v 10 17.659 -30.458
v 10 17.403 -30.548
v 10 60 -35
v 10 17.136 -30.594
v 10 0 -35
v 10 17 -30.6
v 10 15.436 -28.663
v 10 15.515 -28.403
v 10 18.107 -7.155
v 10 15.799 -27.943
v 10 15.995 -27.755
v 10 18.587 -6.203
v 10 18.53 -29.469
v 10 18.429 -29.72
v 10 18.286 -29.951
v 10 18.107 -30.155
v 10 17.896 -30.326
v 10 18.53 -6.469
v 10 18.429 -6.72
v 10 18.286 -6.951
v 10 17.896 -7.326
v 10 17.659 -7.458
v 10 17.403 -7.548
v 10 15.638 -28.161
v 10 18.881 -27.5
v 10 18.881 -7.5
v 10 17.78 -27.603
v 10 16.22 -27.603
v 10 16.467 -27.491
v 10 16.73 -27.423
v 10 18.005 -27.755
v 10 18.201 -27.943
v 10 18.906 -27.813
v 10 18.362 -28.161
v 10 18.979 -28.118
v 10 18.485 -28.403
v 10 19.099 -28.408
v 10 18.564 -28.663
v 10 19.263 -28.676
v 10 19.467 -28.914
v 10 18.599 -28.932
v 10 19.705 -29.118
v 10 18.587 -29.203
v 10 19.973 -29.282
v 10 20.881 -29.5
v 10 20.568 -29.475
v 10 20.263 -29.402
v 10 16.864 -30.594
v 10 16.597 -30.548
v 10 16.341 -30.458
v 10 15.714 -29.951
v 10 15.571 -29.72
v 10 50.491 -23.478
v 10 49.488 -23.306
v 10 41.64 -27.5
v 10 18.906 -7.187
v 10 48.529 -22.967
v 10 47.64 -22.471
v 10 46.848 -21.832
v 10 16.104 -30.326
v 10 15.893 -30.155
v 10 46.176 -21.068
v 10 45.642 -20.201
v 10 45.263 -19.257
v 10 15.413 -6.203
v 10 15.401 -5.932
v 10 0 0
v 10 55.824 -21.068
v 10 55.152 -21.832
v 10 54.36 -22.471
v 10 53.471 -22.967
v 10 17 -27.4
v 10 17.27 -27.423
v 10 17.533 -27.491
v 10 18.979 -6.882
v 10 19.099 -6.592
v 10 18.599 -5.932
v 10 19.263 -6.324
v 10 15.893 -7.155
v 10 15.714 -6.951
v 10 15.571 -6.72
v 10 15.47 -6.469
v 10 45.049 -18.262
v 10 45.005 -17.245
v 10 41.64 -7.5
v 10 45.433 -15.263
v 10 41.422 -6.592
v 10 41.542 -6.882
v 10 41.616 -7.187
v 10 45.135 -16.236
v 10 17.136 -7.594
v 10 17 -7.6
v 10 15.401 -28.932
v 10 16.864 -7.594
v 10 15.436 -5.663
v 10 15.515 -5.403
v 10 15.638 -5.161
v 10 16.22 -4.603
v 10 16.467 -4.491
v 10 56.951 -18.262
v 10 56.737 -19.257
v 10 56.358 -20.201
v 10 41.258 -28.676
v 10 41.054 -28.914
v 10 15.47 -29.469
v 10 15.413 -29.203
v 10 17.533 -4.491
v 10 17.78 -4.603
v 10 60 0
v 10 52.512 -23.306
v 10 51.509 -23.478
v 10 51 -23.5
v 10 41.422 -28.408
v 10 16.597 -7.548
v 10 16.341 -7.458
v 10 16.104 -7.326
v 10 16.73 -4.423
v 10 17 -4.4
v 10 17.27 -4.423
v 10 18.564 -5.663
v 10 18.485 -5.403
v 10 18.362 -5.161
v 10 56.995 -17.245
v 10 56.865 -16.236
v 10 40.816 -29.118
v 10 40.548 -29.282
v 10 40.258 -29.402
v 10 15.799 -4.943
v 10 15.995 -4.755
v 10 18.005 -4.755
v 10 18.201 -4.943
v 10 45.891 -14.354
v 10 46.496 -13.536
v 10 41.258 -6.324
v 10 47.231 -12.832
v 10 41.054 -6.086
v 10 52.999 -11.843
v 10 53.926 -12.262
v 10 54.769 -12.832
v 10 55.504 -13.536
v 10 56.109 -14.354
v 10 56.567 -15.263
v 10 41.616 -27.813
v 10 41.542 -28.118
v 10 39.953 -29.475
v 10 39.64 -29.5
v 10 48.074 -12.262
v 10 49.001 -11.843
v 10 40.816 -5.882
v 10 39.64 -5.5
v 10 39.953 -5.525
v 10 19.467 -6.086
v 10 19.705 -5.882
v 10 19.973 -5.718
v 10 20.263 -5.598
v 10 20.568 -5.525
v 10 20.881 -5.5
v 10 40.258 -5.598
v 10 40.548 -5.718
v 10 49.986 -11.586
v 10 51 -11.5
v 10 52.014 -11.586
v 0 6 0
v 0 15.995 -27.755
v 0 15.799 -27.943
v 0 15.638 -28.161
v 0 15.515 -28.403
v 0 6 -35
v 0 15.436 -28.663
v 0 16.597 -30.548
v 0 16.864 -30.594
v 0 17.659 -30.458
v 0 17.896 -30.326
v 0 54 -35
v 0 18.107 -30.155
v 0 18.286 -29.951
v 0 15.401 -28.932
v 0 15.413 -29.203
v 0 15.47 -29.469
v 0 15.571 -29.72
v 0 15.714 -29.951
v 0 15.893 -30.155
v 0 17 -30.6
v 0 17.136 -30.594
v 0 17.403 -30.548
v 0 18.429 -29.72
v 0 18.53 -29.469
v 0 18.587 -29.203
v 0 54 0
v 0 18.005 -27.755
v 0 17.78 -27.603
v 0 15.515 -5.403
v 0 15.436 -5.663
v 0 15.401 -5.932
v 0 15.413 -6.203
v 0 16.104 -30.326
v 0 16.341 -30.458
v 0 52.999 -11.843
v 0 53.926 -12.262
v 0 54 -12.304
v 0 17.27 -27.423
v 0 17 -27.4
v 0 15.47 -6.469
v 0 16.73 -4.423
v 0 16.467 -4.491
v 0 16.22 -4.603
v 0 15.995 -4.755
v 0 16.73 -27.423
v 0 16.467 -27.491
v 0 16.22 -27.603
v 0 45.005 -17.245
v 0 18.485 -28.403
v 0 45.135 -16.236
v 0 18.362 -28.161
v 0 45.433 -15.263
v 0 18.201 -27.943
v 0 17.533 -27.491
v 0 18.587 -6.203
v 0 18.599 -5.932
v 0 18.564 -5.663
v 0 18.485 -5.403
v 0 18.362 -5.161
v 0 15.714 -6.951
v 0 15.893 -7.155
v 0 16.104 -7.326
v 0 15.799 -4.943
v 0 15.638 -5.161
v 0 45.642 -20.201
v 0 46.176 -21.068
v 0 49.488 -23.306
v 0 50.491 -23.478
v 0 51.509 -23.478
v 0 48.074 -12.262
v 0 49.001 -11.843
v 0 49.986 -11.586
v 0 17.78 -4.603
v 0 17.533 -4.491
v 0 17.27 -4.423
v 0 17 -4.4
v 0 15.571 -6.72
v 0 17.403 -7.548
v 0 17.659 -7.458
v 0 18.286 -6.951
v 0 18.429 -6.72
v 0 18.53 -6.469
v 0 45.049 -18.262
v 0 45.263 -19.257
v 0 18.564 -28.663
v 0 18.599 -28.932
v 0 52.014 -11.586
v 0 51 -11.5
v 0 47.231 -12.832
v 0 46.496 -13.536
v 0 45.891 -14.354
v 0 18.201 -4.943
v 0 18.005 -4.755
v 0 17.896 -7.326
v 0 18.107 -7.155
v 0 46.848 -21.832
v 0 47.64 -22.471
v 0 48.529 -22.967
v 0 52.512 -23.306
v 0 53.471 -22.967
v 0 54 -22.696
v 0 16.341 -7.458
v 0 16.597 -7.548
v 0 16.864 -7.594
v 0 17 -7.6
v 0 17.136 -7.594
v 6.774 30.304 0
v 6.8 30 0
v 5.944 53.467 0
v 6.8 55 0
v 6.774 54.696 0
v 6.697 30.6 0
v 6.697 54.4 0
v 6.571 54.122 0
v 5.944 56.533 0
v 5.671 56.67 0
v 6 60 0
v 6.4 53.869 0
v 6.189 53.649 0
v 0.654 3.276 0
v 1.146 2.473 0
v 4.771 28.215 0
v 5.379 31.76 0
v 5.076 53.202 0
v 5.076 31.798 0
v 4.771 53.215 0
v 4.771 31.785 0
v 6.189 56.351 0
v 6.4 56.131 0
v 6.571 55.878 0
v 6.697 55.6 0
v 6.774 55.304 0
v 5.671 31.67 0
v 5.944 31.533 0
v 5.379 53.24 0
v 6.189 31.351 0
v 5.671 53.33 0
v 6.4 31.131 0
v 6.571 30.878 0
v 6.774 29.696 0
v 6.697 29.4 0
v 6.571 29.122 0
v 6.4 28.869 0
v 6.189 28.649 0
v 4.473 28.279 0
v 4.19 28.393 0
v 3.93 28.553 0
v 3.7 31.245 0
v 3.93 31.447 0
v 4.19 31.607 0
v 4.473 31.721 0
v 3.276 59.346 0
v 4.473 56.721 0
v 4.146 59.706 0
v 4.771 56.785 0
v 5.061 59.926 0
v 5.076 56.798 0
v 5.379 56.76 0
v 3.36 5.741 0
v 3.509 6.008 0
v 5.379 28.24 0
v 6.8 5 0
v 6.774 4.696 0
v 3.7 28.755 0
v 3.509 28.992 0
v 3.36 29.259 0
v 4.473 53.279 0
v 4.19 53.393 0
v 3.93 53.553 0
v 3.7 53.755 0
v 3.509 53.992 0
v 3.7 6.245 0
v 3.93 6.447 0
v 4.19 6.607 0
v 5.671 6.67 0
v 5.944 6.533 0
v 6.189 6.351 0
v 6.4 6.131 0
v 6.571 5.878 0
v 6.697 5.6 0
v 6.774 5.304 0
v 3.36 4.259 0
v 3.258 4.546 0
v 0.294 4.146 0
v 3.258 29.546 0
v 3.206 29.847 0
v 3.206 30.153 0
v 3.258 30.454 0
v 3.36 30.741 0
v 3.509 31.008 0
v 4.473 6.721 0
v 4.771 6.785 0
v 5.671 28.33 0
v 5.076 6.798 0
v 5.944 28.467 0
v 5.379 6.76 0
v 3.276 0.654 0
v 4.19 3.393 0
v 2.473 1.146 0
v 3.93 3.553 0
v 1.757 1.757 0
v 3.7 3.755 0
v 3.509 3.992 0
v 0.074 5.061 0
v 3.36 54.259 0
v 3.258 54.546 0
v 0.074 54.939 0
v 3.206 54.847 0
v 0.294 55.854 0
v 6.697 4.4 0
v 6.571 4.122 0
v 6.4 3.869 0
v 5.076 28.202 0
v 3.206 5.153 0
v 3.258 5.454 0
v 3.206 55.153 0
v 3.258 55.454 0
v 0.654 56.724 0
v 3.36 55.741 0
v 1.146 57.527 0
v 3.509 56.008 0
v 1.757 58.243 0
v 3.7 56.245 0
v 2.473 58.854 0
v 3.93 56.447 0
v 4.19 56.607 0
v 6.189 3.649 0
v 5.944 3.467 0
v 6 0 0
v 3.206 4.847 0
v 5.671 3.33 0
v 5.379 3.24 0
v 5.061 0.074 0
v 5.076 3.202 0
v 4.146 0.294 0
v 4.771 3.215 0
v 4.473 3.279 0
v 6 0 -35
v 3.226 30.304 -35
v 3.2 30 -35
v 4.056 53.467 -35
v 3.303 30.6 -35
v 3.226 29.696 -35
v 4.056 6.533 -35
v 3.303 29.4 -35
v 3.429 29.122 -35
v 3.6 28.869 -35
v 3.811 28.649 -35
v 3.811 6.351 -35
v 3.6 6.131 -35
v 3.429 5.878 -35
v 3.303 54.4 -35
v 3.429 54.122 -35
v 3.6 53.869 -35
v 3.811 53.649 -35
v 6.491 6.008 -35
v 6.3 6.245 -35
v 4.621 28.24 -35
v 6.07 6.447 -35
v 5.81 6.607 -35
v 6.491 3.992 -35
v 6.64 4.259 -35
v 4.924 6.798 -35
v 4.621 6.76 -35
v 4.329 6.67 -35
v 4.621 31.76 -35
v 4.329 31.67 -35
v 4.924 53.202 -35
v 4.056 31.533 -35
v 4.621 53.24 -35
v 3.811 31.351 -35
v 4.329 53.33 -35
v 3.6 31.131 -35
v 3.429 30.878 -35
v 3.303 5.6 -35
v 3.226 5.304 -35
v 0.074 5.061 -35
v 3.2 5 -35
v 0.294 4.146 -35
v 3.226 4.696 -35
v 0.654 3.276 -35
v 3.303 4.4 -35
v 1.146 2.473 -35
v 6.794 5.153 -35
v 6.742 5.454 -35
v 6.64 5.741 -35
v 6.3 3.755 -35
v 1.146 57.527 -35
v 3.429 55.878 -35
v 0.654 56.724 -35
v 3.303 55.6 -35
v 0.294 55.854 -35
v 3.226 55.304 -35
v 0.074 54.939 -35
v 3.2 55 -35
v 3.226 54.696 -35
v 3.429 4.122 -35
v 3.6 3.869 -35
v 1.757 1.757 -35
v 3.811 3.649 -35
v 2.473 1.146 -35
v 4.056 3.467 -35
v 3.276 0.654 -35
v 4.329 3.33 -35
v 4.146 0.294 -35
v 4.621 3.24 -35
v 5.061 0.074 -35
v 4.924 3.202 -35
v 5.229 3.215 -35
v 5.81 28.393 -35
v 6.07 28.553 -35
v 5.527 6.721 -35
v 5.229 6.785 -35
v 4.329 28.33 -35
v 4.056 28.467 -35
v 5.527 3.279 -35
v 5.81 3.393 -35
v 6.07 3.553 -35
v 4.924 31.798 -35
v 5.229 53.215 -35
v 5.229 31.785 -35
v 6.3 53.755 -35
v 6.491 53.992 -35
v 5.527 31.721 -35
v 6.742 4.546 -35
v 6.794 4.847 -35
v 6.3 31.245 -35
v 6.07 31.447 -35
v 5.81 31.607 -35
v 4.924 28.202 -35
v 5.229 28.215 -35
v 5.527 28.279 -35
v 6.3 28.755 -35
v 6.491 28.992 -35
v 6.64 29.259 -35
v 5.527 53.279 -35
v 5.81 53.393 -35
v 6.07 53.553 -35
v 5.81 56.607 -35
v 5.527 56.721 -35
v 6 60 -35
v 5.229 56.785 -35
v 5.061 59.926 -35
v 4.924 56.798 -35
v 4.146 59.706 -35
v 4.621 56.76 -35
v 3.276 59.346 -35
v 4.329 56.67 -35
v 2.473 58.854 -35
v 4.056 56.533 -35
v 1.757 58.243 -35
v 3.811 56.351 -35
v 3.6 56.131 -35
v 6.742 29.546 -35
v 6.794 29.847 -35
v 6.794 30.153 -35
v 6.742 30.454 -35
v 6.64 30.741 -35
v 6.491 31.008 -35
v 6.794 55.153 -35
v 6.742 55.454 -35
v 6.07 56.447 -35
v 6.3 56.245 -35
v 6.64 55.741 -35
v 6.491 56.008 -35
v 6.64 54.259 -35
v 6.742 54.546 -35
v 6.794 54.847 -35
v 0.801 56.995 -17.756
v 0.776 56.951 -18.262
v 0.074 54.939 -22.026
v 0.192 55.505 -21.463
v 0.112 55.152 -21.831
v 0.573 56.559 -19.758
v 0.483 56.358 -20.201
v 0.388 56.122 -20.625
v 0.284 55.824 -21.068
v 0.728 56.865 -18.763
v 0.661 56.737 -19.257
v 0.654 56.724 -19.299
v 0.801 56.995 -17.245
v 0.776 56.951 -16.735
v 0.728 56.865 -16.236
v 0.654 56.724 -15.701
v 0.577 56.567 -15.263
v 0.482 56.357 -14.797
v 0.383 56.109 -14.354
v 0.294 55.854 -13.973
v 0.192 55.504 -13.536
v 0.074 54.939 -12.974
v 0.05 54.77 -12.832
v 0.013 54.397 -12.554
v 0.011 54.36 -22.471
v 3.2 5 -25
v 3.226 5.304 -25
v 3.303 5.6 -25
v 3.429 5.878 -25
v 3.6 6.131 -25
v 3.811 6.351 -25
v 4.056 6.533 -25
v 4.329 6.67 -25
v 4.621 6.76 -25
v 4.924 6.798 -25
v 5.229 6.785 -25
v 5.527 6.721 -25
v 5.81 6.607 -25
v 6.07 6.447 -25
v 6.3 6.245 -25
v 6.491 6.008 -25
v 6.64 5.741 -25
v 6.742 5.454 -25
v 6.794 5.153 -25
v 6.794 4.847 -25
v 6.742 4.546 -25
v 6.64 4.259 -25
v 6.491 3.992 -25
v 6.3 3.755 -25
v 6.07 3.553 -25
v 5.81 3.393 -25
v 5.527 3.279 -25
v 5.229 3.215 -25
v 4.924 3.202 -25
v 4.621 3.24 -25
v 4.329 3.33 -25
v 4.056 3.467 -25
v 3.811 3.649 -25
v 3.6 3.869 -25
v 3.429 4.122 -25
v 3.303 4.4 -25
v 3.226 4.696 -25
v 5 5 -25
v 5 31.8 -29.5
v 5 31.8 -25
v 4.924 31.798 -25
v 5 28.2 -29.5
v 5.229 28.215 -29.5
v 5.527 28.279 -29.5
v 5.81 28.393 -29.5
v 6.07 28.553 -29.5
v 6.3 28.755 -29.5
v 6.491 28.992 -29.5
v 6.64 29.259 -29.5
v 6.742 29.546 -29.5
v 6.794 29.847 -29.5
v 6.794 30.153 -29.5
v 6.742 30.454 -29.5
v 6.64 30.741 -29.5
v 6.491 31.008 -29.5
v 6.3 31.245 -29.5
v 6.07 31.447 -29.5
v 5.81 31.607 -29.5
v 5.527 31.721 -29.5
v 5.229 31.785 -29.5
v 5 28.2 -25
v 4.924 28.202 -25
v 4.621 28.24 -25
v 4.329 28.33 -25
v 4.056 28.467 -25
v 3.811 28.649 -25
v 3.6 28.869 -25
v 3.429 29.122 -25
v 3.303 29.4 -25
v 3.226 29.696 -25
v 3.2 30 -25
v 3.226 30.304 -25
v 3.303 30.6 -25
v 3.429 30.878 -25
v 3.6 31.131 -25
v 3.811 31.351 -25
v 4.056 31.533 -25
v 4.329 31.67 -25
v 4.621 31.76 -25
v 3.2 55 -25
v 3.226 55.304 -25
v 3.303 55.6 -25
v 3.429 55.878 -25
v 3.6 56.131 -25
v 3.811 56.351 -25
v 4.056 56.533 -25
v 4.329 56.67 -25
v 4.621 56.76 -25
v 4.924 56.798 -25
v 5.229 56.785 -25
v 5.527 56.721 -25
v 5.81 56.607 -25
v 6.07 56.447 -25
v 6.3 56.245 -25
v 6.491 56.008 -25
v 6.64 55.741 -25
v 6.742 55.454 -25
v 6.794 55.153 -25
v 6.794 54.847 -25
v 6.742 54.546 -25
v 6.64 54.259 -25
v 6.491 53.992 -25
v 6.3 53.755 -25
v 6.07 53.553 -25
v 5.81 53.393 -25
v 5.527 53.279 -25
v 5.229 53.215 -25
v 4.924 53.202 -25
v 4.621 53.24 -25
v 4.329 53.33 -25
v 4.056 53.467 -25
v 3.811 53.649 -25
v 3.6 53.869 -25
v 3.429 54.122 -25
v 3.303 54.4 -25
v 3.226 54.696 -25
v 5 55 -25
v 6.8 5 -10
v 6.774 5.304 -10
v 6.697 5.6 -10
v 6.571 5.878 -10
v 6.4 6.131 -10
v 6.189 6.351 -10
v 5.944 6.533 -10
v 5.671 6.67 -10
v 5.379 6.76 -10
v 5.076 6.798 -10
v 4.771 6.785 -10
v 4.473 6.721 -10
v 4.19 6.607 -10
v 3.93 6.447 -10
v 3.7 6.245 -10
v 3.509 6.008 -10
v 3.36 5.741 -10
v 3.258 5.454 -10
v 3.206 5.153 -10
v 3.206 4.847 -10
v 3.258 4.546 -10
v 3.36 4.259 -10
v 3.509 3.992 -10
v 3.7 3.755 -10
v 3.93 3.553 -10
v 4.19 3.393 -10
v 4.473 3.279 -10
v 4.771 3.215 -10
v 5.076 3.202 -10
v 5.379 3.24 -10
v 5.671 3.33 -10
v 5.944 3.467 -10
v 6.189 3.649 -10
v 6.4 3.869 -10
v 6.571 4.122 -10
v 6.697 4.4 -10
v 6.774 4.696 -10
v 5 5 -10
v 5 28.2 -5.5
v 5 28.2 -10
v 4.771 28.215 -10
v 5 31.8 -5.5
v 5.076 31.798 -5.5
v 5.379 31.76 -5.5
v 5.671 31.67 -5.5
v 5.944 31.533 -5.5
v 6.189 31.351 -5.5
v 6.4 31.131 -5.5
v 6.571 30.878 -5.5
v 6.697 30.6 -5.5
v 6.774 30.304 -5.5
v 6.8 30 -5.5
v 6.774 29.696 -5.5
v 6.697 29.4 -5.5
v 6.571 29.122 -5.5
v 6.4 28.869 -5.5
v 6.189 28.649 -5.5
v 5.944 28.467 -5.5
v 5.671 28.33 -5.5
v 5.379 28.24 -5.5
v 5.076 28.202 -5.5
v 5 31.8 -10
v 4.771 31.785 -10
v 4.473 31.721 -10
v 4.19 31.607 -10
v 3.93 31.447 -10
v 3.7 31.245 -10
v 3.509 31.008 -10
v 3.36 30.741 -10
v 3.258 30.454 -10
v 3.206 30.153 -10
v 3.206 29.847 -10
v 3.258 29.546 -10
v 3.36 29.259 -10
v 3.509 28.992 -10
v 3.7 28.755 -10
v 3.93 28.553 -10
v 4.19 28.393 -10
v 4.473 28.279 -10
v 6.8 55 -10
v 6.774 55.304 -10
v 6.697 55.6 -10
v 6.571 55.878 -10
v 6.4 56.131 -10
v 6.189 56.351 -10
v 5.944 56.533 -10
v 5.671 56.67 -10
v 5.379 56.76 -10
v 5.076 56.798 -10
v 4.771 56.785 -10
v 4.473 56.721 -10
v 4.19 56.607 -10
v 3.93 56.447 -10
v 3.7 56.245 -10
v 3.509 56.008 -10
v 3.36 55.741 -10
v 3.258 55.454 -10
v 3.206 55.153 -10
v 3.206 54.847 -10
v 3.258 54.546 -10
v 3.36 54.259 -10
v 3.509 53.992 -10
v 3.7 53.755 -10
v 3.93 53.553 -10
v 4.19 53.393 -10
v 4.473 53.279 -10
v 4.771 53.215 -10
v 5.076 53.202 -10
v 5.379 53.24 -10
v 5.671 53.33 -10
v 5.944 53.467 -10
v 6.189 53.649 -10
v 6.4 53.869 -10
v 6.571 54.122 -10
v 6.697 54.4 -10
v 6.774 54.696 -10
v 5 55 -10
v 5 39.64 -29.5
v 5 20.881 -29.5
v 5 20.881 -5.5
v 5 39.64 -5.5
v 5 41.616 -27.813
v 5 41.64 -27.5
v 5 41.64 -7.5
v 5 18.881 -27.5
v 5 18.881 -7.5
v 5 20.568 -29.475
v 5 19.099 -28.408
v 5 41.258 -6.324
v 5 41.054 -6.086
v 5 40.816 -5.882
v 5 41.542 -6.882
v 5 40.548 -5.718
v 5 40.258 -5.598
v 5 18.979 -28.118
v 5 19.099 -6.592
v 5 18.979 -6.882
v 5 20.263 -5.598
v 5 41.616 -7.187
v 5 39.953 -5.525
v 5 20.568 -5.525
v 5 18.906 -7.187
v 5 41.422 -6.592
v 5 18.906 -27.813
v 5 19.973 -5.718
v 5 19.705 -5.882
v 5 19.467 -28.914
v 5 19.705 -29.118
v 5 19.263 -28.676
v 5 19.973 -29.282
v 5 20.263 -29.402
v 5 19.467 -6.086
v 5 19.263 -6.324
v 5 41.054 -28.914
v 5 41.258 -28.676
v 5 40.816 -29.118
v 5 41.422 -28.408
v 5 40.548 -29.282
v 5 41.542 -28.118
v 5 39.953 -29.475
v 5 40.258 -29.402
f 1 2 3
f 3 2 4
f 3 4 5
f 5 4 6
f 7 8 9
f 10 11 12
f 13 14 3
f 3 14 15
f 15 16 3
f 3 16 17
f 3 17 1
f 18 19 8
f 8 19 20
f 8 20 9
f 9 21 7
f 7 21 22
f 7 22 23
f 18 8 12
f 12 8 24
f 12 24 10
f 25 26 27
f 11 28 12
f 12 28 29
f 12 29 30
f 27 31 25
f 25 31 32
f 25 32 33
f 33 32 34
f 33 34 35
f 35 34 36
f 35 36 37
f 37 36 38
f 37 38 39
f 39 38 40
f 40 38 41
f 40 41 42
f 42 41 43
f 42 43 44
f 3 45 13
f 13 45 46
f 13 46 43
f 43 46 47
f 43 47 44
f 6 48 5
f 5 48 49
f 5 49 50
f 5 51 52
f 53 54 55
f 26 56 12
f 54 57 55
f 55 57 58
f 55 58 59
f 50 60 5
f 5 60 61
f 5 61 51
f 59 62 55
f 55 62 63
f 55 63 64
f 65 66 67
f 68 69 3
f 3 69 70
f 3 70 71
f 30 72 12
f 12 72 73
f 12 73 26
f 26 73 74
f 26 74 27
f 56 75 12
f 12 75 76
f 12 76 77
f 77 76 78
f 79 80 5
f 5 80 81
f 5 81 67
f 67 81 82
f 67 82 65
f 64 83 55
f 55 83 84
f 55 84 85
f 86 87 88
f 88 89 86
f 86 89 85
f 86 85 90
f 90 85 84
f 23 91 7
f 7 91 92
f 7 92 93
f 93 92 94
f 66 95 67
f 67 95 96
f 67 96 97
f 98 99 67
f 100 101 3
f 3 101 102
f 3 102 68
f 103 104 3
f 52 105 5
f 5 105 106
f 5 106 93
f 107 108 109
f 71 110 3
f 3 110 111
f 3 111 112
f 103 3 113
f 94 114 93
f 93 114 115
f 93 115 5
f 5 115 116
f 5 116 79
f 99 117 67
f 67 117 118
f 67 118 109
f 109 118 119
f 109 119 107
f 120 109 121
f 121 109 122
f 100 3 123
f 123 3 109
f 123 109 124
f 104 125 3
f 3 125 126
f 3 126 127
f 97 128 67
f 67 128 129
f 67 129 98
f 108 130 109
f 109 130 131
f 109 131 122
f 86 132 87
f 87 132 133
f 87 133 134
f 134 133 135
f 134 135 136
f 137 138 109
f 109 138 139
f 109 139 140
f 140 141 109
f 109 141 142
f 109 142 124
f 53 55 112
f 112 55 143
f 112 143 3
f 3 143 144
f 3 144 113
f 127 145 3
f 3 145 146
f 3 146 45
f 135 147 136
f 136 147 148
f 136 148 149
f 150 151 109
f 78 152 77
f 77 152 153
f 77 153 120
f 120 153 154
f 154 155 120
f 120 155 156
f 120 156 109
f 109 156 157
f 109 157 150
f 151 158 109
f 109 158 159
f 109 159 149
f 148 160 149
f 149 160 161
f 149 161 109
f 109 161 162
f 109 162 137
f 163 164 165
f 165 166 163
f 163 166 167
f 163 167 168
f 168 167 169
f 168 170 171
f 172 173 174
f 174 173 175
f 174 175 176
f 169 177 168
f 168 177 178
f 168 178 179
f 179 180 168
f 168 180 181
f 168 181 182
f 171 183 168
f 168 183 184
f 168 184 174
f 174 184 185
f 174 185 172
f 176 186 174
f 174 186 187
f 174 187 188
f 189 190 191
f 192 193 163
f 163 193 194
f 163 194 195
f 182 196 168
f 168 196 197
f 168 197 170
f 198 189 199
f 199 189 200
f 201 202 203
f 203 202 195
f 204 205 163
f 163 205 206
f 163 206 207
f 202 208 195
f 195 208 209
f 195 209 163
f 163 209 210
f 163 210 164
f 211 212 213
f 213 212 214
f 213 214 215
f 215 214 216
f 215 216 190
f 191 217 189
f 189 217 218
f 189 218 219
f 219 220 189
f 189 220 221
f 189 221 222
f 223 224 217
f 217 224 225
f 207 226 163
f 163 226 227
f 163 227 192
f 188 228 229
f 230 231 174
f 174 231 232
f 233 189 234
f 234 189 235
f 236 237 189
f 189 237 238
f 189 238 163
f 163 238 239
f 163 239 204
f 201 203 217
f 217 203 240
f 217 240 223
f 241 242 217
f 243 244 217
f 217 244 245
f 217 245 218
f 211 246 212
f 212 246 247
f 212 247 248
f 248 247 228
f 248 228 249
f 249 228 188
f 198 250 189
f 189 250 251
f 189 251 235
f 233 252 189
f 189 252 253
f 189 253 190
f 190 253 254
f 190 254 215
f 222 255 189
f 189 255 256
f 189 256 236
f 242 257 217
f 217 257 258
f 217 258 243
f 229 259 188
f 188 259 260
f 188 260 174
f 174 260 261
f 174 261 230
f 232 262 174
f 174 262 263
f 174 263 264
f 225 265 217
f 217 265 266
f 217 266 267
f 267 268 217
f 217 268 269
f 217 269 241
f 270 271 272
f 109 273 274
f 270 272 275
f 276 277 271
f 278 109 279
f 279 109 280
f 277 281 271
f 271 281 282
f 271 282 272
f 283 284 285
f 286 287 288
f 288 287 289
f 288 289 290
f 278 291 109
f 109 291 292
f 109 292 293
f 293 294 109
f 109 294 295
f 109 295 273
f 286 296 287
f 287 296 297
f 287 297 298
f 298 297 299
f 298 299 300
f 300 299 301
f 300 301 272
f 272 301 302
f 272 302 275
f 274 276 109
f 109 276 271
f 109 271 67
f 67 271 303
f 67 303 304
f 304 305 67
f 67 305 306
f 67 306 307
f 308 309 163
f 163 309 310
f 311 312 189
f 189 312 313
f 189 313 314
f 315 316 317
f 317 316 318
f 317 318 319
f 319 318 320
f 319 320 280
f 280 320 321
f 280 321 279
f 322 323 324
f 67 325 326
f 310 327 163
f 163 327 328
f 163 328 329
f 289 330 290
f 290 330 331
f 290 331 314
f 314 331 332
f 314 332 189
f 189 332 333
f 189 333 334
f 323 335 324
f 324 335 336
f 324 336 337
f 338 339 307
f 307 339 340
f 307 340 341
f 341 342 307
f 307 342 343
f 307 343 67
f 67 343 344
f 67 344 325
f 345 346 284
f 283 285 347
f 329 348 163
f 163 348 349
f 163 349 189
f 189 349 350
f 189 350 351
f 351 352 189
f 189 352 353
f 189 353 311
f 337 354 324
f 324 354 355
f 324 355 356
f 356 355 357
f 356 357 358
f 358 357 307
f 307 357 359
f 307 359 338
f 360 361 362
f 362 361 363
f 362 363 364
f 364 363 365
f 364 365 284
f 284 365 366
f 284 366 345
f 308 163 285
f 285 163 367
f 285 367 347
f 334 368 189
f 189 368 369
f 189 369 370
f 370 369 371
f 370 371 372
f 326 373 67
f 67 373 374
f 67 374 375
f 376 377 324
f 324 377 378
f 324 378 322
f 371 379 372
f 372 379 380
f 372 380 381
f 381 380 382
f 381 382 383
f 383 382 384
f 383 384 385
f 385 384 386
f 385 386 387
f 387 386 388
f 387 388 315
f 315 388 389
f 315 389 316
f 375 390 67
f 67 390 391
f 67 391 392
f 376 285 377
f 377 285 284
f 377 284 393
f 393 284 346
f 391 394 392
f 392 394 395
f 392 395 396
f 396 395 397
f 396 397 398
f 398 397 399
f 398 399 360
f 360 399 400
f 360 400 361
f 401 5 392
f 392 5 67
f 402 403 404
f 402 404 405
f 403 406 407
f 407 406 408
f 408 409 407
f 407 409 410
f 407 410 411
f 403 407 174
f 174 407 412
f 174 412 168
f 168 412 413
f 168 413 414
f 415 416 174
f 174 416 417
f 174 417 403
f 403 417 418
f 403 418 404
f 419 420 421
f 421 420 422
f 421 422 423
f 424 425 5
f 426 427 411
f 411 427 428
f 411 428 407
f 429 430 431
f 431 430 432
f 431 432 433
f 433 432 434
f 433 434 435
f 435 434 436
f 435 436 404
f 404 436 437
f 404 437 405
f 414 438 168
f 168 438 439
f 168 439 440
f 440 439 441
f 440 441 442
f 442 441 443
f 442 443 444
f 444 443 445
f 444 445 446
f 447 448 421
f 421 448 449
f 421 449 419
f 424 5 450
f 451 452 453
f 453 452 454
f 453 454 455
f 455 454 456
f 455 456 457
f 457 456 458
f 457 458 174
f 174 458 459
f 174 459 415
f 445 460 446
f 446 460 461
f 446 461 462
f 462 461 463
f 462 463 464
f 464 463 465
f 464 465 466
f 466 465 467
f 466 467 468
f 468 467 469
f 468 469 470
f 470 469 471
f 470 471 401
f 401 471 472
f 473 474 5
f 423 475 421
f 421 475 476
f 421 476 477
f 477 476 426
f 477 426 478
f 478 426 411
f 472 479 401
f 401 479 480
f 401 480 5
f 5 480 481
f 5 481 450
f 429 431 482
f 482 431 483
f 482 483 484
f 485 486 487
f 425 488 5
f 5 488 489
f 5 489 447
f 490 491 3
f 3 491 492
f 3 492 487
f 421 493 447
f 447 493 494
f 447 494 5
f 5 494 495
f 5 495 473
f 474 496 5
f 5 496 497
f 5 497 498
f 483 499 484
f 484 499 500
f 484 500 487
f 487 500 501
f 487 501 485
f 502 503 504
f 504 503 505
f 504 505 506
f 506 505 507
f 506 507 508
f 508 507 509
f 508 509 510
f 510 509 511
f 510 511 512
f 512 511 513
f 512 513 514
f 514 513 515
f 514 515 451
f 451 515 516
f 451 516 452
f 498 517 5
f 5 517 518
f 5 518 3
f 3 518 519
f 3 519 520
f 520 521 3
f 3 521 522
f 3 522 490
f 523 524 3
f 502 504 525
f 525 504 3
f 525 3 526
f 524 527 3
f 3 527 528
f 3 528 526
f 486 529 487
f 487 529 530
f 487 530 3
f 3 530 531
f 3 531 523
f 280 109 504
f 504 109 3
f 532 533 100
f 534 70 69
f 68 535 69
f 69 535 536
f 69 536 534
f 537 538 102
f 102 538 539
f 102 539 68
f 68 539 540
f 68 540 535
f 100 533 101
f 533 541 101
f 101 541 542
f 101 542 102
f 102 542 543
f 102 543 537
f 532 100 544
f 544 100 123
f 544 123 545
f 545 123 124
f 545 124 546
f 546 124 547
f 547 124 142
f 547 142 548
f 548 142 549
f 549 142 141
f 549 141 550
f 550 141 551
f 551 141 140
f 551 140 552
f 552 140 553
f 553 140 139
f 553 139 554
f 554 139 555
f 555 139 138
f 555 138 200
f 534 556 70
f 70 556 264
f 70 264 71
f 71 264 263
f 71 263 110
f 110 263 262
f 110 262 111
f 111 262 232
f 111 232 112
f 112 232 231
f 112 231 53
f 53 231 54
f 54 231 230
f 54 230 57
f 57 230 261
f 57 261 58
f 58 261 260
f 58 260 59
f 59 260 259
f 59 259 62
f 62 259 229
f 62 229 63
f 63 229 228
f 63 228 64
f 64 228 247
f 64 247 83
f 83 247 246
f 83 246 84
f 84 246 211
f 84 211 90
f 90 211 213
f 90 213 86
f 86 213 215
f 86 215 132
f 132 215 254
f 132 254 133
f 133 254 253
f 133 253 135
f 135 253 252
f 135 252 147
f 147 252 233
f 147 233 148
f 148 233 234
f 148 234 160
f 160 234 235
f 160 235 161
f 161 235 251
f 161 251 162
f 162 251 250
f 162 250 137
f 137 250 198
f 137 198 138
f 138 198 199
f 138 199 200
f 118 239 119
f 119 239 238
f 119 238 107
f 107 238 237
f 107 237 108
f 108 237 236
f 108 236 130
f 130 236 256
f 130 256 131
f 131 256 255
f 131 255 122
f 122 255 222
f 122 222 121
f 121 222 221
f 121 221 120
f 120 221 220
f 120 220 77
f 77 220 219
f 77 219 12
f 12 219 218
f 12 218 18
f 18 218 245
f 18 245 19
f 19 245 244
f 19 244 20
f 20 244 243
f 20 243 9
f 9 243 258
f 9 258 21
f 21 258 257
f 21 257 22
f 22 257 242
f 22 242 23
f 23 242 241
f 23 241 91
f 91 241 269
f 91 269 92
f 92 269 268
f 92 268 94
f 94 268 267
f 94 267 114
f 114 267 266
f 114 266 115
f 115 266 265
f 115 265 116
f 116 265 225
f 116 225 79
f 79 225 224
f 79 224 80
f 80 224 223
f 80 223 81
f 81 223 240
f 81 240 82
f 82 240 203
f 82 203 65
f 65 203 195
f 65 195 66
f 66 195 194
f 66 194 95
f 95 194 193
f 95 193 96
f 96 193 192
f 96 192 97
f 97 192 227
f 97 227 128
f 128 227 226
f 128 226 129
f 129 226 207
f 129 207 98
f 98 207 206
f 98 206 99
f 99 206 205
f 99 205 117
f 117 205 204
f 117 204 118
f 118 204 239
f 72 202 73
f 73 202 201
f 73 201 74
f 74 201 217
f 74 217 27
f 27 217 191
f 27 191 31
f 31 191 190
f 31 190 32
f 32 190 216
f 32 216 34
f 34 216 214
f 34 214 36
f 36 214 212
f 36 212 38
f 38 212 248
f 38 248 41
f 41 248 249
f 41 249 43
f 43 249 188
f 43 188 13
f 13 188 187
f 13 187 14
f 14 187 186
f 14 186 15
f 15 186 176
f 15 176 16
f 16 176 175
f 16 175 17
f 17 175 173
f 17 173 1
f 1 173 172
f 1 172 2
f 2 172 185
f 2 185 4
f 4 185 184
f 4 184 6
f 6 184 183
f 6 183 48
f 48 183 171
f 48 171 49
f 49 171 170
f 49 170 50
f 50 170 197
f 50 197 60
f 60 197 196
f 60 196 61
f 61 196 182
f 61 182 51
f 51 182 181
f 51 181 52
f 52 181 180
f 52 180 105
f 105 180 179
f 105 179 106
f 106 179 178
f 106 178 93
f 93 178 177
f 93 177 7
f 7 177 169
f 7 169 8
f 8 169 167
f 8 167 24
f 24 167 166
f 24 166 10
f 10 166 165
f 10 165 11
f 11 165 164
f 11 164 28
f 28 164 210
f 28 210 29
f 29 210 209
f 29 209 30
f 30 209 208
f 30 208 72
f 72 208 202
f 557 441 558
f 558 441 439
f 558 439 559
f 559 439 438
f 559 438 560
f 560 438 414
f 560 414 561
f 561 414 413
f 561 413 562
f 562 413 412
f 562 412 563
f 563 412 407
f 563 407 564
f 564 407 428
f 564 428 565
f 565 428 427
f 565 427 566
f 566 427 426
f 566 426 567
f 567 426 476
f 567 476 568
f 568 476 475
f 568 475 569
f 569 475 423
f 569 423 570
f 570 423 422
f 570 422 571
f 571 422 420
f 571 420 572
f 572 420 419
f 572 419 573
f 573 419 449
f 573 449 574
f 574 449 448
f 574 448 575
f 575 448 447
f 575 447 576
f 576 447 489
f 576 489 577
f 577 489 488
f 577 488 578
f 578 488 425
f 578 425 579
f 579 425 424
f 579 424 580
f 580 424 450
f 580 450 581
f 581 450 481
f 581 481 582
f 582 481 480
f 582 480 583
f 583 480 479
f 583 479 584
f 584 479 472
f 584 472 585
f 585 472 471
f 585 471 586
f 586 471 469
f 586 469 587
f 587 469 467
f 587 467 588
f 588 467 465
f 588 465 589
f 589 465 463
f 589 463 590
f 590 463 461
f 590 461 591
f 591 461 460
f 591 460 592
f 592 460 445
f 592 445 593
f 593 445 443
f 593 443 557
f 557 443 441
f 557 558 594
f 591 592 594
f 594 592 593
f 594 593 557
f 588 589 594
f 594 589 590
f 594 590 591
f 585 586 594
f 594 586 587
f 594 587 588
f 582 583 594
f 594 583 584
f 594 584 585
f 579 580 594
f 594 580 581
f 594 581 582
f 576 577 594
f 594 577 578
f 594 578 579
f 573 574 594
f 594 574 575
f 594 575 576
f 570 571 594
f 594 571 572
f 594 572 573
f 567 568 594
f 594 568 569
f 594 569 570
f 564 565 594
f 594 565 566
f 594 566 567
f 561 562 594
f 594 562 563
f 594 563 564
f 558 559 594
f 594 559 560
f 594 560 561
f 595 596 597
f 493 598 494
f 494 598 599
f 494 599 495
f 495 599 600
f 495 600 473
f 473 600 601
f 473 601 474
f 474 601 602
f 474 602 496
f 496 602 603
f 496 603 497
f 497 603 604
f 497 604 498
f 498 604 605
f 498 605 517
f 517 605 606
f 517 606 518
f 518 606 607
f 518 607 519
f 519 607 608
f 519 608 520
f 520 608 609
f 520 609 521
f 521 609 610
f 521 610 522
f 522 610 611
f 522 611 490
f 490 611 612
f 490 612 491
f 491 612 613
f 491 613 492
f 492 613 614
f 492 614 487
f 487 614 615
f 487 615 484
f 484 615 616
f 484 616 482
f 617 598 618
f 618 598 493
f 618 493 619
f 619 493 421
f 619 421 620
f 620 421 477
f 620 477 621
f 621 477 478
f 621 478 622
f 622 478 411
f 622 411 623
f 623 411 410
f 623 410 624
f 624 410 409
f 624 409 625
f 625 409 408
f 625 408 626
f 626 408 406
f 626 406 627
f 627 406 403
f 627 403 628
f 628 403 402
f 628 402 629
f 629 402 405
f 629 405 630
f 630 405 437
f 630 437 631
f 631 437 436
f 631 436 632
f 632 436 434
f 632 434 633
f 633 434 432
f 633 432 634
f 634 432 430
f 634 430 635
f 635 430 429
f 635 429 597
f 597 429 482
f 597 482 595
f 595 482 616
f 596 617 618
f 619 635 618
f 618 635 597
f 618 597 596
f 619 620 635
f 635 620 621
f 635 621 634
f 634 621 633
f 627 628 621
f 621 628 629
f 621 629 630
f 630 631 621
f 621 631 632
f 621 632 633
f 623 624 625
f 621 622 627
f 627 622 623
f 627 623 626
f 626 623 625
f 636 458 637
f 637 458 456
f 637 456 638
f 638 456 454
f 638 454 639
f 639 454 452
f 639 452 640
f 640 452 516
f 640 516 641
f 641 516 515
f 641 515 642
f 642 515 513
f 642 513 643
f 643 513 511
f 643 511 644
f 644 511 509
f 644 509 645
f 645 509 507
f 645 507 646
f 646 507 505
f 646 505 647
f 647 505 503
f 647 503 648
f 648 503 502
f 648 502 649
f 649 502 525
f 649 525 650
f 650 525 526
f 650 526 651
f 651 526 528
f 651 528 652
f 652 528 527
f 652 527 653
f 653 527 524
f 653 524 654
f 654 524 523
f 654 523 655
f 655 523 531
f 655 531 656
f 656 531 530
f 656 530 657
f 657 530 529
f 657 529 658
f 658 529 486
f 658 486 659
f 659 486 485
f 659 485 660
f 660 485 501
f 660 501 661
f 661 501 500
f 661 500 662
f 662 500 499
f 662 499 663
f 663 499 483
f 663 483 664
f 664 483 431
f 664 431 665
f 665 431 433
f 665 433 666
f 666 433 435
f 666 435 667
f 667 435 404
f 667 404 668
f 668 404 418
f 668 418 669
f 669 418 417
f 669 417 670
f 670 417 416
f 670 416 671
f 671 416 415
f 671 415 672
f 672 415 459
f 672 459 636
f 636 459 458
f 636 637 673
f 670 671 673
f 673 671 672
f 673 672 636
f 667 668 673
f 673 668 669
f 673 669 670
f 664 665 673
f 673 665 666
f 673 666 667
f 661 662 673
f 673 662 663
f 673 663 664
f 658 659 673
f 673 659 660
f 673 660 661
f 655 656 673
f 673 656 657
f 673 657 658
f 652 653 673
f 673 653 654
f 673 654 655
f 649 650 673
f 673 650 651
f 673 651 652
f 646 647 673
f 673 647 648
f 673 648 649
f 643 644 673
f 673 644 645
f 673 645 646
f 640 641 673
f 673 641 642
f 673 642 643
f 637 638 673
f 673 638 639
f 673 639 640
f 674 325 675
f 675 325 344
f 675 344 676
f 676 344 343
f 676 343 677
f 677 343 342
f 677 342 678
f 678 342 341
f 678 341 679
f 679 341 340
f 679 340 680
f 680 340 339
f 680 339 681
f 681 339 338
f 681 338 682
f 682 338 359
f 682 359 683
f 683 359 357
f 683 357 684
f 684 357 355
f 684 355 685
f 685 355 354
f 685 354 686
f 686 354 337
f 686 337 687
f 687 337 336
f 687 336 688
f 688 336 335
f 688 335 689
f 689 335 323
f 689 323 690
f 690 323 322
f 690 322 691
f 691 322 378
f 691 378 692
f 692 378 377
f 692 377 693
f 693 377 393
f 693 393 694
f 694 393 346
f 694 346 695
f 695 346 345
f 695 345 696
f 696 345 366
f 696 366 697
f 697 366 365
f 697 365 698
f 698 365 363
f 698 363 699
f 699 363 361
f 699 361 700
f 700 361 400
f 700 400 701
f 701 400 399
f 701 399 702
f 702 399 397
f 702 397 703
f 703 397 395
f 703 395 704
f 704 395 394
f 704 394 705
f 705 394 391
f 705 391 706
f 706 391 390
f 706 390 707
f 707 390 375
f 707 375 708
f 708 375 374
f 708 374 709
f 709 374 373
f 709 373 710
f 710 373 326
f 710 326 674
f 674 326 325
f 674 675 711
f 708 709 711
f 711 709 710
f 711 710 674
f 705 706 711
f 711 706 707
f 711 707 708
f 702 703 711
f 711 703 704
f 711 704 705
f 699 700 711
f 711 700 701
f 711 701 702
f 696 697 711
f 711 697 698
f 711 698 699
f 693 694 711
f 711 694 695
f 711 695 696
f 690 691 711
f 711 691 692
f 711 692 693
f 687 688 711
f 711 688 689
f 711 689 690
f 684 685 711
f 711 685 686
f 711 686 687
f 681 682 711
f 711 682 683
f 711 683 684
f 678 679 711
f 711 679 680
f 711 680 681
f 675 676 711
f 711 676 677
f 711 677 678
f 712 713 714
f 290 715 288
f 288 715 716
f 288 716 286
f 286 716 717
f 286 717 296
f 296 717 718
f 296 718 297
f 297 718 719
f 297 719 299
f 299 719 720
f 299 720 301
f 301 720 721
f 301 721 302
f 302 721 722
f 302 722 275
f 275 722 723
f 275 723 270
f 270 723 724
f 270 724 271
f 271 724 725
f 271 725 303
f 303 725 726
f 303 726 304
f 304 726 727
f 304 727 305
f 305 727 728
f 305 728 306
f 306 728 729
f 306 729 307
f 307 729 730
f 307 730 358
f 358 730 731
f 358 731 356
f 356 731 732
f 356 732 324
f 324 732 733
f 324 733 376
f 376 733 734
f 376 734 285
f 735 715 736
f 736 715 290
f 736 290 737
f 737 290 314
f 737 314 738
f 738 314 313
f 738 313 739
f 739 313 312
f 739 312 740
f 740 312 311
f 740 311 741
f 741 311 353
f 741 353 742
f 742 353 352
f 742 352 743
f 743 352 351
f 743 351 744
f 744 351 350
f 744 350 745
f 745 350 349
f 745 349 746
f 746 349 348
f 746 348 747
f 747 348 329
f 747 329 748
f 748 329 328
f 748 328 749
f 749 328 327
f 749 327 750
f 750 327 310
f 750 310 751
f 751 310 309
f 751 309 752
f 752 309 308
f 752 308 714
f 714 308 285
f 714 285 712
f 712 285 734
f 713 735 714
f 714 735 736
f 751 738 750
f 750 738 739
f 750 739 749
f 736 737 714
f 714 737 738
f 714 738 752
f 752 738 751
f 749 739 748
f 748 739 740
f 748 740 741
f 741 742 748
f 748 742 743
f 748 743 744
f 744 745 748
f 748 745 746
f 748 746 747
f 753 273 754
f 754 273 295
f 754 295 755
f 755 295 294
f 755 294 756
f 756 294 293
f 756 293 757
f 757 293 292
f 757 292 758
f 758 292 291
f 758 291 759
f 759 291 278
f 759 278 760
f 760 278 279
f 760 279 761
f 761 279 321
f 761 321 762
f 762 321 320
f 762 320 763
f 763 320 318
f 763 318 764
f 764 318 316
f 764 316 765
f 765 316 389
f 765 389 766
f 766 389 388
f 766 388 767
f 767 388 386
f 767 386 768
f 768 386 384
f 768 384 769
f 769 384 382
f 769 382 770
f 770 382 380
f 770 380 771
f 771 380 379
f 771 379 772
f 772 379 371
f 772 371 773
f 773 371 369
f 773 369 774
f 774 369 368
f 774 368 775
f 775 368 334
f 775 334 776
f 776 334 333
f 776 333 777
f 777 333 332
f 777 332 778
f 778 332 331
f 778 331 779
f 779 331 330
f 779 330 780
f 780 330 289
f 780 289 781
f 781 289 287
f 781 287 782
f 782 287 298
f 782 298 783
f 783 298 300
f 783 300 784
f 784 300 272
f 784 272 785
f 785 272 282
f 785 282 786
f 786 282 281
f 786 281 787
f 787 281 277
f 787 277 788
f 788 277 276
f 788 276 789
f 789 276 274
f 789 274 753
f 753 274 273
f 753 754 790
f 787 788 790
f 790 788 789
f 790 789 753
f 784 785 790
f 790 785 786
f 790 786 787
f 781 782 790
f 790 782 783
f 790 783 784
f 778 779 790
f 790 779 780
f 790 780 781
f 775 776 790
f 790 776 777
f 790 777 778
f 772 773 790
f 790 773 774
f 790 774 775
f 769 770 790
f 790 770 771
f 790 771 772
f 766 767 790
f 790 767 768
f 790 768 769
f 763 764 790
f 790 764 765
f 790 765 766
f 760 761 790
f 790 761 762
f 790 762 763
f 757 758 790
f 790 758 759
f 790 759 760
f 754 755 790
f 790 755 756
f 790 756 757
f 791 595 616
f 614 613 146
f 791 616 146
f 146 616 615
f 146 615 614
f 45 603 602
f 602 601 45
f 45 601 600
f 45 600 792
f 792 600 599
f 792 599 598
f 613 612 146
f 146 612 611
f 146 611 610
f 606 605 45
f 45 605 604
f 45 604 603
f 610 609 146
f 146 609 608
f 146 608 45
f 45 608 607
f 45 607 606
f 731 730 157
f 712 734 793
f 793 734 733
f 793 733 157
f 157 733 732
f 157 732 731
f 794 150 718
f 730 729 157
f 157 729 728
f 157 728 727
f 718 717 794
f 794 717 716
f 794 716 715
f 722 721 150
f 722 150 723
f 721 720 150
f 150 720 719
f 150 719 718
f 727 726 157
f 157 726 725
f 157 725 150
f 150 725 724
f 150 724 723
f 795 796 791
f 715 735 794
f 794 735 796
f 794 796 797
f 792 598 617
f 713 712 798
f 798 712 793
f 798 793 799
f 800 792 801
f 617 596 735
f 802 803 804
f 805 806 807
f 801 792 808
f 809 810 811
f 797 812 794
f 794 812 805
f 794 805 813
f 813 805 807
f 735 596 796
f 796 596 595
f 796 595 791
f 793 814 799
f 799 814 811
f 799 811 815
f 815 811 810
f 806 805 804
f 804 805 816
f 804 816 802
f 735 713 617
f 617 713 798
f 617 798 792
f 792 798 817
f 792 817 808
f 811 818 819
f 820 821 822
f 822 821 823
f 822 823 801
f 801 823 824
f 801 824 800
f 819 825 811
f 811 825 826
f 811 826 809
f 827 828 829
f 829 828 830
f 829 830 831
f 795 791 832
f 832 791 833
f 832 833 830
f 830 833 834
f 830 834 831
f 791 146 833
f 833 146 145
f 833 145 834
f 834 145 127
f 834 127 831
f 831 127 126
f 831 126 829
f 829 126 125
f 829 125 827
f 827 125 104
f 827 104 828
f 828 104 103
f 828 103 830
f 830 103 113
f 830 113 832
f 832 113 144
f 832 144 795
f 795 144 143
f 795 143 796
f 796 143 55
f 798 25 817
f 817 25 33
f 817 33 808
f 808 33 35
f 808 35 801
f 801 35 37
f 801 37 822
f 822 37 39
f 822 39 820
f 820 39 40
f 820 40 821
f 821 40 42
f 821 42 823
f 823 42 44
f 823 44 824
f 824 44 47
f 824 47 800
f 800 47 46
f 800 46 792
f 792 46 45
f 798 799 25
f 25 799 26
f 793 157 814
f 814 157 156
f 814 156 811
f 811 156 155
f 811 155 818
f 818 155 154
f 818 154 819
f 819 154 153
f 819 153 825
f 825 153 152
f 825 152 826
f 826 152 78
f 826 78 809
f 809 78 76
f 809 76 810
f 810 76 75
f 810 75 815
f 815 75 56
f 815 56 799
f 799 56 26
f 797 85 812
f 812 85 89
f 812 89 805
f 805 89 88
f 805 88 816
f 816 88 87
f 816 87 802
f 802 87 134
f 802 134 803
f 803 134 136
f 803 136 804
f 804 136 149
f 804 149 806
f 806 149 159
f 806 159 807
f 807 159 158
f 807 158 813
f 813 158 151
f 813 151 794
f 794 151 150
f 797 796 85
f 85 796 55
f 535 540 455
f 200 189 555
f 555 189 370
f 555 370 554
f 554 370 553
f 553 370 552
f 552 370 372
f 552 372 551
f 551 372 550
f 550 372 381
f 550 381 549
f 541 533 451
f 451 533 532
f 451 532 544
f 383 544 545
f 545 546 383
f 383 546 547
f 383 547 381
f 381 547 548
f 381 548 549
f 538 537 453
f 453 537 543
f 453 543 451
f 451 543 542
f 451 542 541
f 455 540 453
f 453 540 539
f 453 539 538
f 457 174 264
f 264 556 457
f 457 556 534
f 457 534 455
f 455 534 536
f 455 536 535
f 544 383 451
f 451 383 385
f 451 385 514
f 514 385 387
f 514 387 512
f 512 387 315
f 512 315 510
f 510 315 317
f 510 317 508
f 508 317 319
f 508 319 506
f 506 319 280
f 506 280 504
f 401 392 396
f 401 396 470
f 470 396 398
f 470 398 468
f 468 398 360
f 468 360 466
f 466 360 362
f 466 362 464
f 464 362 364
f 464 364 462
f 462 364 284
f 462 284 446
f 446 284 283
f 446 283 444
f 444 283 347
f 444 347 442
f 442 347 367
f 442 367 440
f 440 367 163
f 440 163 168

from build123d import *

# Parameters (mm, degrees)
SKETCH1_W           = 35
SKETCH1_H           = 60
SKETCH1_R           = 6
SKETCH1_R_2         = 1.6
BOSS_EXTRUDE1_DEPTH = 10
SKETCH2_R           = 1.8
CUT_EXTRUDE1_DEPTH  = 10
CUT_EXTRUDE2_START  = -10
SKETCH3_R           = 1.8
CUT_EXTRUDE2_DEPTH  = 10
CUT_EXTRUDE3_DEPTH  = 5
FILLET1_R           = 6


with BuildPart() as part:
    # Sketch1 → Boss-Extrude1 (new body)
    with BuildSketch(Plane(origin=(0, 0, 0), x_dir=(0, 0, -1), z_dir=(1, 0, 0))):
        with Locations((17.5, 30)):
            Rectangle(SKETCH1_W, SKETCH1_H)
        with Locations((17.5, 51)):
            Circle(SKETCH1_R, mode=Mode.SUBTRACT)
        with Locations((6, 17)):
            Circle(SKETCH1_R_2, mode=Mode.SUBTRACT)
        with Locations((29, 17)):
            Circle(SKETCH1_R_2, mode=Mode.SUBTRACT)
    extrude(amount=BOSS_EXTRUDE1_DEPTH)

    # Sketch2 → Cut-Extrude1 (cut)
    with BuildSketch(Plane(origin=(0, 0, -35), x_dir=(-1, 0, 0), z_dir=(0, 0, -1))):
        with Locations((-5, 55)):
            Circle(SKETCH2_R)
        with Locations((-5, 30)):
            Circle(SKETCH2_R)
        with Locations((-5, 5)):
            Circle(SKETCH2_R)
    extrude(amount=-CUT_EXTRUDE1_DEPTH, mode=Mode.SUBTRACT)

    # Sketch3 → Cut-Extrude2 (cut)
    with BuildSketch(Plane.XY.offset(CUT_EXTRUDE2_START)):
        with Locations(Location((5, 55, 0), (0, 0, 180))):
            Circle(SKETCH3_R)
        with Locations(Location((5, 30, 0), (0, 0, 180))):
            Circle(SKETCH3_R)
        with Locations(Location((5, 5, 0), (0, 0, 180))):
            Circle(SKETCH3_R)
    extrude(amount=CUT_EXTRUDE2_DEPTH, mode=Mode.SUBTRACT)

    # Sketch4 → Cut-Extrude3 (cut)
    with BuildSketch(Plane(origin=(10, 0, 0), x_dir=(0, 0, -1), z_dir=(1, 0, 0))):
        with BuildLine():
            Line((29.5, 31.881008272), (29.5, 20.881008272))
            ThreePointArc((29.5, 20.881008272), (28.914213562, 19.466794709), (27.5, 18.881008272))
            Line((27.5, 18.881008272), (7.5, 18.881008272))
            ThreePointArc((7.5, 18.881008272), (6.085786438, 19.466794709), (5.5, 20.881008272))
            Line((5.5, 20.881008272), (5.5, 31.881008272))
            Line((5.5, 31.881008272), (5.5, 36.640158011))
            Line((5.5, 36.640158011), (5.5, 39.640158011))
            ThreePointArc((5.5, 39.640158011), (6.085786438, 41.054371573), (7.5, 41.640158011))
            Line((7.5, 41.640158011), (27.5, 41.640158011))
            ThreePointArc((27.5, 41.640158011), (28.914213562, 41.054371573), (29.5, 39.640158011))
            Line((29.5, 39.640158011), (29.5, 36.640158011))
            Line((29.5, 36.640158011), (29.5, 31.881008272))
        make_face()
    extrude(amount=-CUT_EXTRUDE3_DEPTH, mode=Mode.SUBTRACT)

    # Fillet1
    # the kernel refuses this fillet: 6 mm, written as the material it takes off along each edge
    with BuildSketch(Plane(origin=(0, 60, -50), x_dir=(0, -1, 0), z_dir=(0, 0, 1))) as fillet1_piece_1:
        with BuildLine():
            CenterArc((FILLET1_R, FILLET1_R), FILLET1_R, 180, 90)
            Line((0, FILLET1_R), (0, 0))
            Line((0, 0), (FILLET1_R, 0))
        make_face()
    extrude(amount=65, mode=Mode.SUBTRACT)
    with BuildSketch(Plane(origin=(0, 0, 15), x_dir=(1, 0, 0), z_dir=(0, 0, -1))) as fillet1_piece_2:
        with BuildLine():
            CenterArc((FILLET1_R, -FILLET1_R), FILLET1_R, 90, 90)
            Line((0, -FILLET1_R), (0, 0))
            Line((0, 0), (FILLET1_R, 0))
        make_face()
    extrude(amount=65, mode=Mode.SUBTRACT)


solid = part.part
